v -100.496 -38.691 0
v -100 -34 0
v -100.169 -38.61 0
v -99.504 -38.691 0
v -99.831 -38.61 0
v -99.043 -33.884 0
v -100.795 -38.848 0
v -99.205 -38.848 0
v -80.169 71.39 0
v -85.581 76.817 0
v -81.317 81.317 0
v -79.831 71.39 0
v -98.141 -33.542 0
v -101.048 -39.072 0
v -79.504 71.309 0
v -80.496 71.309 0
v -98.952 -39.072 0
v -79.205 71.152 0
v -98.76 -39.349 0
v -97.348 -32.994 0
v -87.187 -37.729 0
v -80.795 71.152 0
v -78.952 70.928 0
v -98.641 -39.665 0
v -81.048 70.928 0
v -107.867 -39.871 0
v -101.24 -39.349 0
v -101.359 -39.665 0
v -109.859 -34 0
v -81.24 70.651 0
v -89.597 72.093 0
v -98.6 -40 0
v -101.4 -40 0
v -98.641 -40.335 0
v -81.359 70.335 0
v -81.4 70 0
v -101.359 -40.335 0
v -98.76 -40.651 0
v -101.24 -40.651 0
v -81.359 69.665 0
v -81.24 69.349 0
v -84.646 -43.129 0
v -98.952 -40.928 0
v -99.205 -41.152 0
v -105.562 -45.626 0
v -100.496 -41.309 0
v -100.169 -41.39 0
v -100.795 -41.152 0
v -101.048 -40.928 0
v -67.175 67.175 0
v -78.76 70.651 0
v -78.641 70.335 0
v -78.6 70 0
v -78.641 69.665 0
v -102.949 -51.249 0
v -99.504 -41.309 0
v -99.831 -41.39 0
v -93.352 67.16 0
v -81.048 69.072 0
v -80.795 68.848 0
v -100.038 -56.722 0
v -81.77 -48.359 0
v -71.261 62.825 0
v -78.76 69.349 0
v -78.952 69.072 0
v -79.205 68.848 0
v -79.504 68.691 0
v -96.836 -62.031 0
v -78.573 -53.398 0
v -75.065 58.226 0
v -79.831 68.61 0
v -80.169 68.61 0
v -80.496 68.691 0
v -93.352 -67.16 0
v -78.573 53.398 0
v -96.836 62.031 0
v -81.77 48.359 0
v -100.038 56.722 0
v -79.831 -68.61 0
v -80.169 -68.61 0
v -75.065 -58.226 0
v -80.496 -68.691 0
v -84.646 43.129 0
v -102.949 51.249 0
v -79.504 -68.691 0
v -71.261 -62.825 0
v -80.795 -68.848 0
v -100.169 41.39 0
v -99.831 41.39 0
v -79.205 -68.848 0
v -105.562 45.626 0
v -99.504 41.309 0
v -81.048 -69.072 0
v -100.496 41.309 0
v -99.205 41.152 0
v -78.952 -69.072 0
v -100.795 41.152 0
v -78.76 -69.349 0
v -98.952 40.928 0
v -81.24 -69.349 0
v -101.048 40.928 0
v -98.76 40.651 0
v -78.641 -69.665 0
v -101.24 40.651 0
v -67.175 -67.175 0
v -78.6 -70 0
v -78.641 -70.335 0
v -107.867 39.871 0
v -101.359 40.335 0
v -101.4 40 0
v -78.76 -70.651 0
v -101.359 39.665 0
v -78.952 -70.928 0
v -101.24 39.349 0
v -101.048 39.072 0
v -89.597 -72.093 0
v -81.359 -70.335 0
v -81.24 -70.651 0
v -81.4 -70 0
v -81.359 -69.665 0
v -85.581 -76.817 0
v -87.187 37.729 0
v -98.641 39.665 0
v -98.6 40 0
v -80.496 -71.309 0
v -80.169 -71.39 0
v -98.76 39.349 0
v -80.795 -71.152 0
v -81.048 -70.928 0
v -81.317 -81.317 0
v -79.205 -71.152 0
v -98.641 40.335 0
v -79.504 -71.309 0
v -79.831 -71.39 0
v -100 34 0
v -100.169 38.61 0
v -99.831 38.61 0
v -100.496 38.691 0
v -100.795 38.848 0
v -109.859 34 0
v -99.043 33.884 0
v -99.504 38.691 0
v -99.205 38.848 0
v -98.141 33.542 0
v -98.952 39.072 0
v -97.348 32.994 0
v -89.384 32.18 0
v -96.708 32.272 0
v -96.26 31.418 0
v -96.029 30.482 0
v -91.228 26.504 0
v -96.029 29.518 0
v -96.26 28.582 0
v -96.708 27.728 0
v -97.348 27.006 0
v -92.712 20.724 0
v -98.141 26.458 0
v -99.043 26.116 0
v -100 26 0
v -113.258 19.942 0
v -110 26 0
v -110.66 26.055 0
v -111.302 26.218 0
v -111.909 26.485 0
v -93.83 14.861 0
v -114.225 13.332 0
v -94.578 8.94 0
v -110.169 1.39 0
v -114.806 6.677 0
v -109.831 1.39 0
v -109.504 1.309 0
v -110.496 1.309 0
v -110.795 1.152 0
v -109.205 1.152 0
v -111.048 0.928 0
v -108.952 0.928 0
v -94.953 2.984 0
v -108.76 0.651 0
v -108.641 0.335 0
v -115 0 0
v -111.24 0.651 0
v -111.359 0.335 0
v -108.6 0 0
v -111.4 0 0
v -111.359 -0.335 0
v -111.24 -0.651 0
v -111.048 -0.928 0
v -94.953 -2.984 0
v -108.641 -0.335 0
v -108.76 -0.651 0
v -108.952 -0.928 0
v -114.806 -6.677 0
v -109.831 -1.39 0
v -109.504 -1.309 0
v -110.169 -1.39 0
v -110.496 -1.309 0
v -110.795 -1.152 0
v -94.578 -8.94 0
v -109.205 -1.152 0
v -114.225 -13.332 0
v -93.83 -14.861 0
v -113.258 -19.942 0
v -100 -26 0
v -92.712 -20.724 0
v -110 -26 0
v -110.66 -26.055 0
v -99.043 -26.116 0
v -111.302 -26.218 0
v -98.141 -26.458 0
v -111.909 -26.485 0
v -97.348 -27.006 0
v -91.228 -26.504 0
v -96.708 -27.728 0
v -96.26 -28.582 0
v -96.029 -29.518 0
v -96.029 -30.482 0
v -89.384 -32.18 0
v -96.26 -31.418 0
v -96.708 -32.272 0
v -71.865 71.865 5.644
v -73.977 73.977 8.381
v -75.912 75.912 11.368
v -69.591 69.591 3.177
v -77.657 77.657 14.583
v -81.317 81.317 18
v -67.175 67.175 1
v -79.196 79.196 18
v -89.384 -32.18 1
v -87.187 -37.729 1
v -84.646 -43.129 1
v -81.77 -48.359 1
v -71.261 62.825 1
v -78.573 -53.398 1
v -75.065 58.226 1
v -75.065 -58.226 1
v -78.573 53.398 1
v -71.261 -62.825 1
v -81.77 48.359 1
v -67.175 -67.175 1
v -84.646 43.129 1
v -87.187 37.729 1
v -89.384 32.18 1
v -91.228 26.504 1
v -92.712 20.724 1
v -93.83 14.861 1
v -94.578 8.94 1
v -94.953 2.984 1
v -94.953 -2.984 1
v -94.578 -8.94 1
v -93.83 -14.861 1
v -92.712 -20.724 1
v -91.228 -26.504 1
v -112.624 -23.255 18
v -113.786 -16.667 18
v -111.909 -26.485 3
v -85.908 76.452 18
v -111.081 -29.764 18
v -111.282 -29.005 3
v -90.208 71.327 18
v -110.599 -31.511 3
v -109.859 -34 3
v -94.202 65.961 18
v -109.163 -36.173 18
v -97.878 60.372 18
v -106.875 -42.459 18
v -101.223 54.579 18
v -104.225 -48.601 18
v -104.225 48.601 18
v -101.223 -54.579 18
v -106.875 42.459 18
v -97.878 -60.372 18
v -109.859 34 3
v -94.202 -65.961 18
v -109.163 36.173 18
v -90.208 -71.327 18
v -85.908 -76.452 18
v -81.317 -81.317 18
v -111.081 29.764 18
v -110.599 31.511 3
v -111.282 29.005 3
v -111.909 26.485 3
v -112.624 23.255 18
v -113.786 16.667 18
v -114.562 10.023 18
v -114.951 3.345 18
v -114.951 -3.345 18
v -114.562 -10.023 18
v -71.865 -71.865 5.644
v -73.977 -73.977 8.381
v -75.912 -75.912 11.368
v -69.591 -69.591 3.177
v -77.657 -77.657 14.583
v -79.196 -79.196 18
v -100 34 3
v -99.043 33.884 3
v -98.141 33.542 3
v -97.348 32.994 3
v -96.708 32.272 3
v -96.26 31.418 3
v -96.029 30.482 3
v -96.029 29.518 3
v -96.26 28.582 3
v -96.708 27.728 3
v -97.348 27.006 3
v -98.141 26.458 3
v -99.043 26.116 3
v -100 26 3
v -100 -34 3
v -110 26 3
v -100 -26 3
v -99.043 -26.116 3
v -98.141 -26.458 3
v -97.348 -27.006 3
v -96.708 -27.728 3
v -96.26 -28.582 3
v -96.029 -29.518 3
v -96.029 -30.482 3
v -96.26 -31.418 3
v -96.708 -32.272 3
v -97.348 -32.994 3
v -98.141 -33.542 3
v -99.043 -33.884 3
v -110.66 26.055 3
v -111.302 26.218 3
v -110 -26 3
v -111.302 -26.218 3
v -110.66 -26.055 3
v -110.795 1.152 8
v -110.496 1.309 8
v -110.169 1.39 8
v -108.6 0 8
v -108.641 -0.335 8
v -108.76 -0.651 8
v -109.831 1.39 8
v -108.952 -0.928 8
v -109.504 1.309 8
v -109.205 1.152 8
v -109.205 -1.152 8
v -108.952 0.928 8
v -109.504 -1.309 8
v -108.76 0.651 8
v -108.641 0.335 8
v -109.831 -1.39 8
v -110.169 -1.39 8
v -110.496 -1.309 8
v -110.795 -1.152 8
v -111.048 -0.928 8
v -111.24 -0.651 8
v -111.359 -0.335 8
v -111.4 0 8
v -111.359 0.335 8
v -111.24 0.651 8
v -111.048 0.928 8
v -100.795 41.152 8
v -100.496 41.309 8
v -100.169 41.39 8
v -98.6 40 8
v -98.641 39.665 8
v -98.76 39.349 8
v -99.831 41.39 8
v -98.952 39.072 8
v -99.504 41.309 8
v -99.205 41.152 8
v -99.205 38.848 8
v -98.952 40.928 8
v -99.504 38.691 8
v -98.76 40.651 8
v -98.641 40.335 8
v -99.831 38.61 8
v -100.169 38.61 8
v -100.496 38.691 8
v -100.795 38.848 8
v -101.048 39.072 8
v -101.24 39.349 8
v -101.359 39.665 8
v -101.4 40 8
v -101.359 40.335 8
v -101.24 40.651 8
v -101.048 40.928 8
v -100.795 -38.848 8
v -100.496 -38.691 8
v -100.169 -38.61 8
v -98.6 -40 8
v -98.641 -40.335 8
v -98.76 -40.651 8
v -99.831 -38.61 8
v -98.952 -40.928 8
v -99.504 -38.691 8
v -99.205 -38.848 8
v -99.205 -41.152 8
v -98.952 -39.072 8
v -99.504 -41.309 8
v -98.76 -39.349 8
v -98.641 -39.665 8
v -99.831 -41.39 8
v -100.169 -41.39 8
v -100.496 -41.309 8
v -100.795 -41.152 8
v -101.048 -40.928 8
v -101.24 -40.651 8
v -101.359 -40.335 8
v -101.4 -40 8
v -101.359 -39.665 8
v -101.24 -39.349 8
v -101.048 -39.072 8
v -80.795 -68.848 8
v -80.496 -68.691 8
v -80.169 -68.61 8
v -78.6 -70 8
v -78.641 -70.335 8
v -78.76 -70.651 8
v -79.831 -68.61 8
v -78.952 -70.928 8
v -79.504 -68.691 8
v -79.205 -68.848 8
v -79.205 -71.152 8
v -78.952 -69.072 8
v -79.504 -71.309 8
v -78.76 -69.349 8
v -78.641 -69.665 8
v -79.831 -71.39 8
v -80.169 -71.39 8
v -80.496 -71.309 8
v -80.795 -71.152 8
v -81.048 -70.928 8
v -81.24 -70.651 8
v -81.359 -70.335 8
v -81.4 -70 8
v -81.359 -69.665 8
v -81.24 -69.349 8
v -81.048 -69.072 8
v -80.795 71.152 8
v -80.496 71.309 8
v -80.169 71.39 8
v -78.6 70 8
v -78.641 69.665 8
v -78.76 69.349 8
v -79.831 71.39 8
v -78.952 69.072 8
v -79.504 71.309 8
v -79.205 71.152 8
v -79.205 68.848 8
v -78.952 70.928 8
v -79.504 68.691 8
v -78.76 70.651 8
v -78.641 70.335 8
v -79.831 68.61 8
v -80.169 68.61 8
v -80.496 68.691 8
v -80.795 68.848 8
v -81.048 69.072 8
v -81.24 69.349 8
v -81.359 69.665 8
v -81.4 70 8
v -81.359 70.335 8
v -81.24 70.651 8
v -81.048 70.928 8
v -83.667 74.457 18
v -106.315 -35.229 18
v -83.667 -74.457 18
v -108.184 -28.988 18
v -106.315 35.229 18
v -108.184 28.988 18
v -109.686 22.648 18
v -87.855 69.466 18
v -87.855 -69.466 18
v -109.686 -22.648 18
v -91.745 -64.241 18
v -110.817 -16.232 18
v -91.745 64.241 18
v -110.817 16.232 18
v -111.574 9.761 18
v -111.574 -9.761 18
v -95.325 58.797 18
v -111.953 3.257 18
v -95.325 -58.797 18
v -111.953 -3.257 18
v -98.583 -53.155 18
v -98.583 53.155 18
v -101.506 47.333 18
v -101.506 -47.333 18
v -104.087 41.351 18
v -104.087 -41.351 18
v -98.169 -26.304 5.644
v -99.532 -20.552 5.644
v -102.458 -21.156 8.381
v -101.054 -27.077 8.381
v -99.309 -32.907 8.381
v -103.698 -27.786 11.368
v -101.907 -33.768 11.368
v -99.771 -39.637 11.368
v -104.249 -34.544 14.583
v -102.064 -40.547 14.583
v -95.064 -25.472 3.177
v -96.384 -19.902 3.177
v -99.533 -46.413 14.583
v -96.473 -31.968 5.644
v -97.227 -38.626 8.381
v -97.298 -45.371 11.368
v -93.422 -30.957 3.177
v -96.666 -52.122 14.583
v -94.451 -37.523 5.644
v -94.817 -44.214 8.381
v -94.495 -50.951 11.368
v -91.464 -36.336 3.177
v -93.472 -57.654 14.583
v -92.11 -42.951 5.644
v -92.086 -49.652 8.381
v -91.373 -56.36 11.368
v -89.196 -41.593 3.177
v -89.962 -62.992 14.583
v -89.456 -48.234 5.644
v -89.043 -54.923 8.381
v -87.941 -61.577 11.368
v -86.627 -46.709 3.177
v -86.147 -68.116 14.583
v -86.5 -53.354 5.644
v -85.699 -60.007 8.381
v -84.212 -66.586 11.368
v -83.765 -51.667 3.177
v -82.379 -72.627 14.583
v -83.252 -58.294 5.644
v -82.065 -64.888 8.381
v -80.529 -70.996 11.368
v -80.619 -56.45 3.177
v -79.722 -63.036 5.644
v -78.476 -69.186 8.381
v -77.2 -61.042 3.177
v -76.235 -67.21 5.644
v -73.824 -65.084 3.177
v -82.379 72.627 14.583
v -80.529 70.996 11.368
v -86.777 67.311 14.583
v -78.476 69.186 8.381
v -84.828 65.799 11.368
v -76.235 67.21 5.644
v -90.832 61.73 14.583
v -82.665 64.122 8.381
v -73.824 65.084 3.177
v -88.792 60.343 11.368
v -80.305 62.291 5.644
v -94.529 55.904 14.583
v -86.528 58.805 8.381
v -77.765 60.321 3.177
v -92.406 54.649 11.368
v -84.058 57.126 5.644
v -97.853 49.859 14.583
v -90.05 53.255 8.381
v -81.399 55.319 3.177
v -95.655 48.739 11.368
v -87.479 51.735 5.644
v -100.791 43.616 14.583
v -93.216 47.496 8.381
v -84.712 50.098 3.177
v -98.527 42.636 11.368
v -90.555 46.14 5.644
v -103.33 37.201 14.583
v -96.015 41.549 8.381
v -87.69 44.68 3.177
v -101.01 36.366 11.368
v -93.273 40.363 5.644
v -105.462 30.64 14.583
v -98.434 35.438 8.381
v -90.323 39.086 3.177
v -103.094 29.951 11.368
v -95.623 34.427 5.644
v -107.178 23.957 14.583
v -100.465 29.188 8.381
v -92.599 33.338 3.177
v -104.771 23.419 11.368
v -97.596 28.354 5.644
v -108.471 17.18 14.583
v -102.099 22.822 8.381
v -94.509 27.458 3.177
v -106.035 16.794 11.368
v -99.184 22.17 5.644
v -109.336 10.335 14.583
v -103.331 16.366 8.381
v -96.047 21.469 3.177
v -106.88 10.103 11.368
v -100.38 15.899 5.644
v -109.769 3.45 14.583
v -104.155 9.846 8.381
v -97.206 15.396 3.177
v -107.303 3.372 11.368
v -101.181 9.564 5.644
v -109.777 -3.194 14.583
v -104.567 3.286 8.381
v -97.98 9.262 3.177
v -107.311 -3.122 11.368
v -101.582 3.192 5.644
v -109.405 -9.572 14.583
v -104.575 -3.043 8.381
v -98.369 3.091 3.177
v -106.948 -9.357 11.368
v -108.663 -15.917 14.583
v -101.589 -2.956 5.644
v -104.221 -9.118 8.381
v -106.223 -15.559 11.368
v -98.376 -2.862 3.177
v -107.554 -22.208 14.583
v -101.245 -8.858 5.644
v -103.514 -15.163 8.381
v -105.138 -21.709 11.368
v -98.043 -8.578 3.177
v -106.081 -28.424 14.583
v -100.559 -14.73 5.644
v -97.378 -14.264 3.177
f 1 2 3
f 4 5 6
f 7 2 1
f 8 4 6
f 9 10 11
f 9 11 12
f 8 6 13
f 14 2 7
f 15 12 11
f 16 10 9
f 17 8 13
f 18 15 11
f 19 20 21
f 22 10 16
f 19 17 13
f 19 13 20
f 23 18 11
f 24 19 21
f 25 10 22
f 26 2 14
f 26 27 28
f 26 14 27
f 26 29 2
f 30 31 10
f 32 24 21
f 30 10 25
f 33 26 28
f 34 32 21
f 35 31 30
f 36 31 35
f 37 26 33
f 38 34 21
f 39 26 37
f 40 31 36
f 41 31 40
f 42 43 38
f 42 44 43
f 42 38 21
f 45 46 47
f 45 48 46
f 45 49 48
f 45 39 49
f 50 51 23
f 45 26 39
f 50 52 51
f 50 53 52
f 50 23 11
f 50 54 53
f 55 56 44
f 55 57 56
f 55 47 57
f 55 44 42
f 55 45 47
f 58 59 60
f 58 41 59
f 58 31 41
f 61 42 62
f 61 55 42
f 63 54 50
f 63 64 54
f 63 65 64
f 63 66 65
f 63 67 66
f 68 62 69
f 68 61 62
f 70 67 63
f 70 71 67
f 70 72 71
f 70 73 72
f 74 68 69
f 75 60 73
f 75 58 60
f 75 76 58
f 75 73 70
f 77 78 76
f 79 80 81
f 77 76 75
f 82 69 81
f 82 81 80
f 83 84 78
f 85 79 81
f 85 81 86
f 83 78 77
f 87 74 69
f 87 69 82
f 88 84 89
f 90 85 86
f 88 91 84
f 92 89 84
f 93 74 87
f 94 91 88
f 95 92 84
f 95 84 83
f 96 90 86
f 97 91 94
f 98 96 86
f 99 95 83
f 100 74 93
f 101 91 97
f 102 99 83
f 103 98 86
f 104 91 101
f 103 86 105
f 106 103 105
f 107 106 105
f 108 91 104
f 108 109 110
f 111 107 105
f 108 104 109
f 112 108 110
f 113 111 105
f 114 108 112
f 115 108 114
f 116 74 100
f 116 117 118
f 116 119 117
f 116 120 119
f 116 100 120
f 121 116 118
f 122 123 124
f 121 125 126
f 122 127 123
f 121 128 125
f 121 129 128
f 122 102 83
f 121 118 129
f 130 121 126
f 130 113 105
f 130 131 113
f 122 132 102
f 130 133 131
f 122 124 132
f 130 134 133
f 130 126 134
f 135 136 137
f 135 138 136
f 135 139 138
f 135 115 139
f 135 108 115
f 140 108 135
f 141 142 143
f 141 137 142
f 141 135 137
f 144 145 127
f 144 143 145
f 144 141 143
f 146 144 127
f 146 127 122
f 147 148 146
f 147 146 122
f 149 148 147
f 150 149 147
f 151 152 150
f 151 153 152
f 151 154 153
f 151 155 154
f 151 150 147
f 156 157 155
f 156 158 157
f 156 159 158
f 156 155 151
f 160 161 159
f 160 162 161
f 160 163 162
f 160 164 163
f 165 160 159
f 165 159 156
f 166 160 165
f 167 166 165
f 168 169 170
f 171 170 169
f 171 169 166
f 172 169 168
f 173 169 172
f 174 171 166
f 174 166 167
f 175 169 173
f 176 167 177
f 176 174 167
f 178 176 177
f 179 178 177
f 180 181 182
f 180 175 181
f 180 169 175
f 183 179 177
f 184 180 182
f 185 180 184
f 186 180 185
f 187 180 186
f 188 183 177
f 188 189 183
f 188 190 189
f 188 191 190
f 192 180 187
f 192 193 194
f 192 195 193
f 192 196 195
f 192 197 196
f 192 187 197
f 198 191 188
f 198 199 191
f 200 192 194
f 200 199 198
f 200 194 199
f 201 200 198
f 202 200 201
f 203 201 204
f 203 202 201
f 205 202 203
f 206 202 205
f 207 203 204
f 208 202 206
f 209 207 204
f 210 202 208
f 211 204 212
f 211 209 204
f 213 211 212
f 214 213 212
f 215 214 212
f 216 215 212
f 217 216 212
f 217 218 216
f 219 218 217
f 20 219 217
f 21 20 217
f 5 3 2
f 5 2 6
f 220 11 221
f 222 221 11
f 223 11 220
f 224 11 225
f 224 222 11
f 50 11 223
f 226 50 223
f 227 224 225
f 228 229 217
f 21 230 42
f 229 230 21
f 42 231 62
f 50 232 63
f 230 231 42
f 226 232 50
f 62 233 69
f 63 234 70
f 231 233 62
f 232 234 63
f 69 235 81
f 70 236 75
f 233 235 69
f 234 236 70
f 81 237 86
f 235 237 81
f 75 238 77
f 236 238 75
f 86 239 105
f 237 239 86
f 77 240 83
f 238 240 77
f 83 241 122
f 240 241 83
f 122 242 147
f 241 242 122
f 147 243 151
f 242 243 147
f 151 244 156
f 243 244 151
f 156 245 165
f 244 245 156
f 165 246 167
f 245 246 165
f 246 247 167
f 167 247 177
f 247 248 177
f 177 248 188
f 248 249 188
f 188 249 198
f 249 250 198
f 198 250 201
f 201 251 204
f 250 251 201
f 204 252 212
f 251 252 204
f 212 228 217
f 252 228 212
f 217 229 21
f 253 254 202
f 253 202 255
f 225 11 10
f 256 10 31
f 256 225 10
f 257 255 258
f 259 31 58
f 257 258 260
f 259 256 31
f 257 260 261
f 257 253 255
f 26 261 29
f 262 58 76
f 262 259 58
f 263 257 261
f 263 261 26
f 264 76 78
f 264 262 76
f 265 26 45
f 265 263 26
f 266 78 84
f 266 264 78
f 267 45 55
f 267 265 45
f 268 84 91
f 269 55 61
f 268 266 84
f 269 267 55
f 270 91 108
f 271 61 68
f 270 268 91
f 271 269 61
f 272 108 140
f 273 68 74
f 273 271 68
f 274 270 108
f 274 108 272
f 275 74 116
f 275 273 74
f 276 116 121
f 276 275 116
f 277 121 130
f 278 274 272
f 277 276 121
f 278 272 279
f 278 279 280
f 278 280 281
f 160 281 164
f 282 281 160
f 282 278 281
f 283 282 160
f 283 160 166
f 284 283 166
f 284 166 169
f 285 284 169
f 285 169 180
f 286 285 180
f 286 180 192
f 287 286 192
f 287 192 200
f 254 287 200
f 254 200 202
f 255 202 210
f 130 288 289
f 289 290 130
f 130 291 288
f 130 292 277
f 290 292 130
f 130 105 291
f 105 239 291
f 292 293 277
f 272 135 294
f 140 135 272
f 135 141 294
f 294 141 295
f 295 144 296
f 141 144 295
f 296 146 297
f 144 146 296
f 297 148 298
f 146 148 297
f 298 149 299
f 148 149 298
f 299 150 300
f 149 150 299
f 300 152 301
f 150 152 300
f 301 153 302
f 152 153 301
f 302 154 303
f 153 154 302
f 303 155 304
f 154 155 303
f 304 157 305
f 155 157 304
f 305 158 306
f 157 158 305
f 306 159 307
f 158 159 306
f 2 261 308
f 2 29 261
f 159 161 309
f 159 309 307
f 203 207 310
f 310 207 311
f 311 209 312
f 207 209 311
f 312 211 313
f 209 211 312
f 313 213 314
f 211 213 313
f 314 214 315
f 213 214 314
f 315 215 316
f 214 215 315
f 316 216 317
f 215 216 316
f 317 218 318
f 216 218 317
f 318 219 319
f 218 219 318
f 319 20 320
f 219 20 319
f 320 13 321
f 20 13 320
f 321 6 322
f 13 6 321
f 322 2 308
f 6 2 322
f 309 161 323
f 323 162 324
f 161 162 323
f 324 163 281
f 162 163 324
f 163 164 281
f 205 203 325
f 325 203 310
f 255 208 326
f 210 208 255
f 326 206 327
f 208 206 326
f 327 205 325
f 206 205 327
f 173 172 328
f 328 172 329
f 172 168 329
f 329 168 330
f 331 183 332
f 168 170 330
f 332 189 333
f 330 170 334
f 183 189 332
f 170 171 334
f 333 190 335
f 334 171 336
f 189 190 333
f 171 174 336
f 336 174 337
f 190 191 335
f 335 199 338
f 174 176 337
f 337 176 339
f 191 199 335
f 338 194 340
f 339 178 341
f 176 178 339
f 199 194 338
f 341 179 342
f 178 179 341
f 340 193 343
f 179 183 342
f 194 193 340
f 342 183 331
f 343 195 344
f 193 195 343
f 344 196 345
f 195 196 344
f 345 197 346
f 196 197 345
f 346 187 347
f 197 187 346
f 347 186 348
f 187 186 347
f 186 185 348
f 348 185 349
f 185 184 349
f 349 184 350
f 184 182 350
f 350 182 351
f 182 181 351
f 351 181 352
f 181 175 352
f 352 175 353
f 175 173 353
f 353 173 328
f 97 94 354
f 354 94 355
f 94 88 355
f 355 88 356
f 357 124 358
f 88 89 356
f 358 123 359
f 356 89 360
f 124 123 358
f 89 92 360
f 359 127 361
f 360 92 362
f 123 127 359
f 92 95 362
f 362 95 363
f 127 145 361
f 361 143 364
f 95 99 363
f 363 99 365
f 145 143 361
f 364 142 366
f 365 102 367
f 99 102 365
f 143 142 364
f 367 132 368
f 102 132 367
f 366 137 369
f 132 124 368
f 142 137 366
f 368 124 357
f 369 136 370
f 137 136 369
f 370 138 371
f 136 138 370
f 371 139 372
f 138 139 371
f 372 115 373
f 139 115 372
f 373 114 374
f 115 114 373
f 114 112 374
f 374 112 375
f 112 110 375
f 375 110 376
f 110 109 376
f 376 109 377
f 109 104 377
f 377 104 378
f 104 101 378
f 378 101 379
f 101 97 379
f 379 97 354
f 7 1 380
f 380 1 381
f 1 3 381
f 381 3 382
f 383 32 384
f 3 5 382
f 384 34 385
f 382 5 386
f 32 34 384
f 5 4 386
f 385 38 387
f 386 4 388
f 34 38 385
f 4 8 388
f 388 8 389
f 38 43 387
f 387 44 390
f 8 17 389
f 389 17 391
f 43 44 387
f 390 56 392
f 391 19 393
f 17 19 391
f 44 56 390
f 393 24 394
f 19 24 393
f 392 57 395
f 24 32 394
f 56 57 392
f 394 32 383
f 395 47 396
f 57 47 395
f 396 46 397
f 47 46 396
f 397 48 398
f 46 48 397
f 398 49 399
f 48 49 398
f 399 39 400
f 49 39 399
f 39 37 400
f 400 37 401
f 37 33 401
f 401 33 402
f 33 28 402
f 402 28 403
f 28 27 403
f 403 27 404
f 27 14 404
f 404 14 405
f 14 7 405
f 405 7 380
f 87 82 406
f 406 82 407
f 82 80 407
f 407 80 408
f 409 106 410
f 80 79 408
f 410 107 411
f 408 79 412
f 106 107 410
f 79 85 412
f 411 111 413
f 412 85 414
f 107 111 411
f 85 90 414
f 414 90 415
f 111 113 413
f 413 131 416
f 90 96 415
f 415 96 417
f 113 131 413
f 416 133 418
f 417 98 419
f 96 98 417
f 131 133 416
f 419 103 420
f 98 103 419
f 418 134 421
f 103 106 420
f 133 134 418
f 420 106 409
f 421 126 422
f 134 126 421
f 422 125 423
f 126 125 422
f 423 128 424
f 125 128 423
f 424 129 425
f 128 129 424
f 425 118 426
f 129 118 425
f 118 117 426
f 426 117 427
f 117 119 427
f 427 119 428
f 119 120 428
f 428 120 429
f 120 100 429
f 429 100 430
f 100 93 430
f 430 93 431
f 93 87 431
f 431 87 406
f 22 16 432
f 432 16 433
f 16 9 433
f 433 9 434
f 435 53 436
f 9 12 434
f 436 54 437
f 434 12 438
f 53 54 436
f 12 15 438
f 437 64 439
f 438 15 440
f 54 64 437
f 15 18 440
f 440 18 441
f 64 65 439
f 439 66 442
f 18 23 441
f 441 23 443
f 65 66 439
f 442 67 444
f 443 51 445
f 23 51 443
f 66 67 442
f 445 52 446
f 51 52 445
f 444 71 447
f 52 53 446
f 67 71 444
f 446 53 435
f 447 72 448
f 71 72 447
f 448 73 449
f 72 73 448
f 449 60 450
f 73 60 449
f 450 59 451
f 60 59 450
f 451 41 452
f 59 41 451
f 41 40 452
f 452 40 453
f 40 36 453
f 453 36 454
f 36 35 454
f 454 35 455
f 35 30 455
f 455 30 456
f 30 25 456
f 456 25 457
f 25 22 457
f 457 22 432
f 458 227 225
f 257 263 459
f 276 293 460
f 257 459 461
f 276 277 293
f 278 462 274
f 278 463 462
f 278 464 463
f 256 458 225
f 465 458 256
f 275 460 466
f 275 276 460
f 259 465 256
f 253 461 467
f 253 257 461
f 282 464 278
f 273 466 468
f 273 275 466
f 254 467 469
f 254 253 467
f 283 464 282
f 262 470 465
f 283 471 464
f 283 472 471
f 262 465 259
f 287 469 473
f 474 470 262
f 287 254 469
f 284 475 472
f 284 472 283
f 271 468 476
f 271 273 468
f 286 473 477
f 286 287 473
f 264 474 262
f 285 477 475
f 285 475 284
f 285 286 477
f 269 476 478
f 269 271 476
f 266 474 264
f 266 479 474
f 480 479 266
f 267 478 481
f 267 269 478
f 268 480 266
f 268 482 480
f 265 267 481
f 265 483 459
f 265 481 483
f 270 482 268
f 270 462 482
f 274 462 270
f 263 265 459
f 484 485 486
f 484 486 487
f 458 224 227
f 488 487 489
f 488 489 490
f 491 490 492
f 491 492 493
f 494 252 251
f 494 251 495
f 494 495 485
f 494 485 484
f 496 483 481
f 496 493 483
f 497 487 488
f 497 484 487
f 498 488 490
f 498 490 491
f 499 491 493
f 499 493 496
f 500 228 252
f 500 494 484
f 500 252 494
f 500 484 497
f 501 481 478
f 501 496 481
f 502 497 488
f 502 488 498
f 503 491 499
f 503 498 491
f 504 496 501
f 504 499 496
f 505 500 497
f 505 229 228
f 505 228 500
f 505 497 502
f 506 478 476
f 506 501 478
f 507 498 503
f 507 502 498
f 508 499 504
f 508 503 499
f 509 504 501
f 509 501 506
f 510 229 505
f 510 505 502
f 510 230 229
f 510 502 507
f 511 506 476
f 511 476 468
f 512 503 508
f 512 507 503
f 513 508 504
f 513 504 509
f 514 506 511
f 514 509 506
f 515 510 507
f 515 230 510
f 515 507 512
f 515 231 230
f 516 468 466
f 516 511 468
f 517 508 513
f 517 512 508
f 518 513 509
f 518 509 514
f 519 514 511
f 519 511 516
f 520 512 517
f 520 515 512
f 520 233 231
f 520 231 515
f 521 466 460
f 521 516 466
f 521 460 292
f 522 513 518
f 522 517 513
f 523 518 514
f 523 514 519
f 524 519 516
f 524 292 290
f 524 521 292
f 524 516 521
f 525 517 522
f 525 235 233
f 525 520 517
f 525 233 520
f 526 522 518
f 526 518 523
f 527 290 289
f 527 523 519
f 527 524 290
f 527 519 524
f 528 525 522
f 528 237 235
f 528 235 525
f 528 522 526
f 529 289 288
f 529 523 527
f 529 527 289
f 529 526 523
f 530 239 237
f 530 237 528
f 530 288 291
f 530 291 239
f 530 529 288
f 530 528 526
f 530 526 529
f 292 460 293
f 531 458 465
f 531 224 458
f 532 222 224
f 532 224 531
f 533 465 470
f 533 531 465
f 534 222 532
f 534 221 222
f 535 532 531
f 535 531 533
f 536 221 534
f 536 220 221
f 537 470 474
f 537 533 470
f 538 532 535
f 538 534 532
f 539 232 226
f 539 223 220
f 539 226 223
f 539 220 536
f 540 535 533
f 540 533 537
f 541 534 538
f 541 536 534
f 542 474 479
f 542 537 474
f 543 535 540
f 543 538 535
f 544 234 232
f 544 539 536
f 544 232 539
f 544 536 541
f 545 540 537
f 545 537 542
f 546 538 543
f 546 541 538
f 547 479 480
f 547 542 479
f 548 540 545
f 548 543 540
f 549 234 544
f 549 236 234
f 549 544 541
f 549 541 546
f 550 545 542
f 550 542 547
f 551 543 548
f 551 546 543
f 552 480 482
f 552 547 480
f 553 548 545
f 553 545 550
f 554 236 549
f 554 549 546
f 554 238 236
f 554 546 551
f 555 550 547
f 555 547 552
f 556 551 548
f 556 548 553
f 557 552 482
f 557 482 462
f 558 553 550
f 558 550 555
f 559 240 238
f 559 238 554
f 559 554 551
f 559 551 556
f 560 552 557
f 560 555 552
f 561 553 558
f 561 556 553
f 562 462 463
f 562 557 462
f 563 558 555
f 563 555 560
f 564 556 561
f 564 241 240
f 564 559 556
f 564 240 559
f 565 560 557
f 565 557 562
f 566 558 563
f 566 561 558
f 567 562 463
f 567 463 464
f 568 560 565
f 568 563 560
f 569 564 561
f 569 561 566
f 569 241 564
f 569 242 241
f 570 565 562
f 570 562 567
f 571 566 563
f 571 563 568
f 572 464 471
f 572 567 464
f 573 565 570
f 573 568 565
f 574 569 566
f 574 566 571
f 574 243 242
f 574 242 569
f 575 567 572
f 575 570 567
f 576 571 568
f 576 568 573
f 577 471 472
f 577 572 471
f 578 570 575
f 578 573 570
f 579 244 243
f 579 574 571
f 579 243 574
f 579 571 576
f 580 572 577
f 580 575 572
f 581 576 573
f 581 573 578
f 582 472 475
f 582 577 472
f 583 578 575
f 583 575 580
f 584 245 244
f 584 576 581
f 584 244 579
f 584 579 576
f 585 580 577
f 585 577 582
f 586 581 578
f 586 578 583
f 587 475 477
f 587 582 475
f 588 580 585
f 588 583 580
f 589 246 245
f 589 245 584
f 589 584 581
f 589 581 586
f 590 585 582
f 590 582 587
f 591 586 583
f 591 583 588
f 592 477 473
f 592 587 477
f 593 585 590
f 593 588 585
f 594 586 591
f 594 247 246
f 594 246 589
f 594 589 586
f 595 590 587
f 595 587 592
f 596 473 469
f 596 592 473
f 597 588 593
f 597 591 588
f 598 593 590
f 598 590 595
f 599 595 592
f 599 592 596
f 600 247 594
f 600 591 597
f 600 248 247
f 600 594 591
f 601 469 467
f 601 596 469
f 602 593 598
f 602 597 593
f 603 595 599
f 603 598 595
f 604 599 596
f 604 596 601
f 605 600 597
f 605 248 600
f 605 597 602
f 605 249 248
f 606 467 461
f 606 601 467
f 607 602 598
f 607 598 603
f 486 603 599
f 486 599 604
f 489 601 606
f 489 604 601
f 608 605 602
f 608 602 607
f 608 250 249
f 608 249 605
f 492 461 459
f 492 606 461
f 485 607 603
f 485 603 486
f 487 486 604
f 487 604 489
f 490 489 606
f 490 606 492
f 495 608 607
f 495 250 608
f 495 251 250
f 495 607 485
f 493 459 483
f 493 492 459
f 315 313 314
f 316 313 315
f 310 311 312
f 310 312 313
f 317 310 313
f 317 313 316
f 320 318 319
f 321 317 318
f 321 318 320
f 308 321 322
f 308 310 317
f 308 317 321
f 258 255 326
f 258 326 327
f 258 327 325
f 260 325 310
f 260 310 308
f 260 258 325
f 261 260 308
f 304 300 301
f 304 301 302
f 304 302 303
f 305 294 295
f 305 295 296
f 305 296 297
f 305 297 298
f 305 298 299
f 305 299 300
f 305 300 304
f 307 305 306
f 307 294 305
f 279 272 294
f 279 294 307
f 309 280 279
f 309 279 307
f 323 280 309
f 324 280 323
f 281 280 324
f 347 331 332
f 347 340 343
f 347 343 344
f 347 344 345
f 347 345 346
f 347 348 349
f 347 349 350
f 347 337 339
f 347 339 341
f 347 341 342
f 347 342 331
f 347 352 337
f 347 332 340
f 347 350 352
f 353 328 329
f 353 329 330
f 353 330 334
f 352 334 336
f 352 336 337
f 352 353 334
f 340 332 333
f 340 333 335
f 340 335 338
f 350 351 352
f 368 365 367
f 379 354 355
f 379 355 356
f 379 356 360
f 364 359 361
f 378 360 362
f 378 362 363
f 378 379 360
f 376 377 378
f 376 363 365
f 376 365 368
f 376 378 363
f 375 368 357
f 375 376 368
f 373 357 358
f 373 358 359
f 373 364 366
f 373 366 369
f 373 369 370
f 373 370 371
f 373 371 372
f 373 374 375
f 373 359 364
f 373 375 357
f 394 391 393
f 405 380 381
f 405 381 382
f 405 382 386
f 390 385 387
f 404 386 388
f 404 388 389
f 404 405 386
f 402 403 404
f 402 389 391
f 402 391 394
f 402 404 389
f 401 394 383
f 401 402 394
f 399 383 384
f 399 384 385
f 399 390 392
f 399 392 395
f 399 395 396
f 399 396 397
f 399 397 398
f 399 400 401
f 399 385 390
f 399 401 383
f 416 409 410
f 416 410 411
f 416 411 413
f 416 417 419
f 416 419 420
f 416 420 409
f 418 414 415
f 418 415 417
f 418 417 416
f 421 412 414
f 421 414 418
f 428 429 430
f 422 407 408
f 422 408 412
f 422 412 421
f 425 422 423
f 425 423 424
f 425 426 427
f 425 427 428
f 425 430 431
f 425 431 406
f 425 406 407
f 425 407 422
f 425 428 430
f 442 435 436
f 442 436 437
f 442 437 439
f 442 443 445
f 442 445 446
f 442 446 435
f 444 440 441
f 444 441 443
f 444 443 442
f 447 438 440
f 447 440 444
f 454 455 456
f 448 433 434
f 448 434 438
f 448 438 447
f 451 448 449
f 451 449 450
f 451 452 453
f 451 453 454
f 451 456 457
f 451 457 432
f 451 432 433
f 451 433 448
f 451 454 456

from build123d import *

# Parameters (mm, degrees)
REVOLUTION_ANGLE = 90
POCKET_DEPTH     = 3
SKETCH002_R      = 1.4
POCKET001_DEPTH  = 8


with BuildPart() as part:
    # Sketch → Revolution (revolve, symmetric)
    with BuildSketch(Plane.XZ) as revolution_sk:
        with BuildLine():
            Line((-95, 0), (-115, 0))
            Line((-115, 0), (-115, 18))
            Line((-115, 18), (-112, 18))
            ThreePointArc((-112, 18), (-104.619043, 8.380957), (-95, 1))
            Line((-95, 0), (-95, 1))
        make_face()
    revolve(axis=Axis((0, 0, 0), (0, 0, 1)), revolution_arc=REVOLUTION_ANGLE / 2)
    revolve(revolution_sk.sketch, axis=Axis((0, 0, 0), (0, 0, -1)), revolution_arc=REVOLUTION_ANGLE / 2)

    # Sketch001 (on Face1 of Revolution) → Pocket (cut)
    with BuildSketch(Plane(origin=(0, 0, 0), x_dir=(1, 0, 0), z_dir=(0, 0, -1))):
        with BuildLine():
            ThreePointArc((-110, 34), (-114, 30), (-110, 26))
            Line((-110, 26), (-100, 26))
            ThreePointArc((-100, 26), (-96, 30), (-100, 34))
            Line((-110, 34), (-100, 34))
        make_face()
        with BuildLine():
            ThreePointArc((-110, -26), (-114, -30), (-110, -34))
            Line((-110, -34), (-100, -34))
            ThreePointArc((-100, -34), (-96, -30), (-100, -26))
            Line((-110, -26), (-100, -26))
        make_face()
    extrude(amount=-POCKET_DEPTH, mode=Mode.SUBTRACT)

    # Sketch002 (on Face1 of Pocket) → Pocket001 (cut)
    with BuildSketch(Plane(origin=(0, 0, 0), x_dir=(1, 0, 0), z_dir=(0, 0, -1))):
        with Locations((-80, 70)):
            Circle(SKETCH002_R)
        with Locations((-80, -70)):
            Circle(SKETCH002_R)
        with Locations((-110, 0)):
            Circle(SKETCH002_R)
        with Locations((-100, -40)):
            Circle(SKETCH002_R)
        with Locations((-100, 40)):
            Circle(SKETCH002_R)
    extrude(amount=-POCKET001_DEPTH, mode=Mode.SUBTRACT)


solid = part.part
